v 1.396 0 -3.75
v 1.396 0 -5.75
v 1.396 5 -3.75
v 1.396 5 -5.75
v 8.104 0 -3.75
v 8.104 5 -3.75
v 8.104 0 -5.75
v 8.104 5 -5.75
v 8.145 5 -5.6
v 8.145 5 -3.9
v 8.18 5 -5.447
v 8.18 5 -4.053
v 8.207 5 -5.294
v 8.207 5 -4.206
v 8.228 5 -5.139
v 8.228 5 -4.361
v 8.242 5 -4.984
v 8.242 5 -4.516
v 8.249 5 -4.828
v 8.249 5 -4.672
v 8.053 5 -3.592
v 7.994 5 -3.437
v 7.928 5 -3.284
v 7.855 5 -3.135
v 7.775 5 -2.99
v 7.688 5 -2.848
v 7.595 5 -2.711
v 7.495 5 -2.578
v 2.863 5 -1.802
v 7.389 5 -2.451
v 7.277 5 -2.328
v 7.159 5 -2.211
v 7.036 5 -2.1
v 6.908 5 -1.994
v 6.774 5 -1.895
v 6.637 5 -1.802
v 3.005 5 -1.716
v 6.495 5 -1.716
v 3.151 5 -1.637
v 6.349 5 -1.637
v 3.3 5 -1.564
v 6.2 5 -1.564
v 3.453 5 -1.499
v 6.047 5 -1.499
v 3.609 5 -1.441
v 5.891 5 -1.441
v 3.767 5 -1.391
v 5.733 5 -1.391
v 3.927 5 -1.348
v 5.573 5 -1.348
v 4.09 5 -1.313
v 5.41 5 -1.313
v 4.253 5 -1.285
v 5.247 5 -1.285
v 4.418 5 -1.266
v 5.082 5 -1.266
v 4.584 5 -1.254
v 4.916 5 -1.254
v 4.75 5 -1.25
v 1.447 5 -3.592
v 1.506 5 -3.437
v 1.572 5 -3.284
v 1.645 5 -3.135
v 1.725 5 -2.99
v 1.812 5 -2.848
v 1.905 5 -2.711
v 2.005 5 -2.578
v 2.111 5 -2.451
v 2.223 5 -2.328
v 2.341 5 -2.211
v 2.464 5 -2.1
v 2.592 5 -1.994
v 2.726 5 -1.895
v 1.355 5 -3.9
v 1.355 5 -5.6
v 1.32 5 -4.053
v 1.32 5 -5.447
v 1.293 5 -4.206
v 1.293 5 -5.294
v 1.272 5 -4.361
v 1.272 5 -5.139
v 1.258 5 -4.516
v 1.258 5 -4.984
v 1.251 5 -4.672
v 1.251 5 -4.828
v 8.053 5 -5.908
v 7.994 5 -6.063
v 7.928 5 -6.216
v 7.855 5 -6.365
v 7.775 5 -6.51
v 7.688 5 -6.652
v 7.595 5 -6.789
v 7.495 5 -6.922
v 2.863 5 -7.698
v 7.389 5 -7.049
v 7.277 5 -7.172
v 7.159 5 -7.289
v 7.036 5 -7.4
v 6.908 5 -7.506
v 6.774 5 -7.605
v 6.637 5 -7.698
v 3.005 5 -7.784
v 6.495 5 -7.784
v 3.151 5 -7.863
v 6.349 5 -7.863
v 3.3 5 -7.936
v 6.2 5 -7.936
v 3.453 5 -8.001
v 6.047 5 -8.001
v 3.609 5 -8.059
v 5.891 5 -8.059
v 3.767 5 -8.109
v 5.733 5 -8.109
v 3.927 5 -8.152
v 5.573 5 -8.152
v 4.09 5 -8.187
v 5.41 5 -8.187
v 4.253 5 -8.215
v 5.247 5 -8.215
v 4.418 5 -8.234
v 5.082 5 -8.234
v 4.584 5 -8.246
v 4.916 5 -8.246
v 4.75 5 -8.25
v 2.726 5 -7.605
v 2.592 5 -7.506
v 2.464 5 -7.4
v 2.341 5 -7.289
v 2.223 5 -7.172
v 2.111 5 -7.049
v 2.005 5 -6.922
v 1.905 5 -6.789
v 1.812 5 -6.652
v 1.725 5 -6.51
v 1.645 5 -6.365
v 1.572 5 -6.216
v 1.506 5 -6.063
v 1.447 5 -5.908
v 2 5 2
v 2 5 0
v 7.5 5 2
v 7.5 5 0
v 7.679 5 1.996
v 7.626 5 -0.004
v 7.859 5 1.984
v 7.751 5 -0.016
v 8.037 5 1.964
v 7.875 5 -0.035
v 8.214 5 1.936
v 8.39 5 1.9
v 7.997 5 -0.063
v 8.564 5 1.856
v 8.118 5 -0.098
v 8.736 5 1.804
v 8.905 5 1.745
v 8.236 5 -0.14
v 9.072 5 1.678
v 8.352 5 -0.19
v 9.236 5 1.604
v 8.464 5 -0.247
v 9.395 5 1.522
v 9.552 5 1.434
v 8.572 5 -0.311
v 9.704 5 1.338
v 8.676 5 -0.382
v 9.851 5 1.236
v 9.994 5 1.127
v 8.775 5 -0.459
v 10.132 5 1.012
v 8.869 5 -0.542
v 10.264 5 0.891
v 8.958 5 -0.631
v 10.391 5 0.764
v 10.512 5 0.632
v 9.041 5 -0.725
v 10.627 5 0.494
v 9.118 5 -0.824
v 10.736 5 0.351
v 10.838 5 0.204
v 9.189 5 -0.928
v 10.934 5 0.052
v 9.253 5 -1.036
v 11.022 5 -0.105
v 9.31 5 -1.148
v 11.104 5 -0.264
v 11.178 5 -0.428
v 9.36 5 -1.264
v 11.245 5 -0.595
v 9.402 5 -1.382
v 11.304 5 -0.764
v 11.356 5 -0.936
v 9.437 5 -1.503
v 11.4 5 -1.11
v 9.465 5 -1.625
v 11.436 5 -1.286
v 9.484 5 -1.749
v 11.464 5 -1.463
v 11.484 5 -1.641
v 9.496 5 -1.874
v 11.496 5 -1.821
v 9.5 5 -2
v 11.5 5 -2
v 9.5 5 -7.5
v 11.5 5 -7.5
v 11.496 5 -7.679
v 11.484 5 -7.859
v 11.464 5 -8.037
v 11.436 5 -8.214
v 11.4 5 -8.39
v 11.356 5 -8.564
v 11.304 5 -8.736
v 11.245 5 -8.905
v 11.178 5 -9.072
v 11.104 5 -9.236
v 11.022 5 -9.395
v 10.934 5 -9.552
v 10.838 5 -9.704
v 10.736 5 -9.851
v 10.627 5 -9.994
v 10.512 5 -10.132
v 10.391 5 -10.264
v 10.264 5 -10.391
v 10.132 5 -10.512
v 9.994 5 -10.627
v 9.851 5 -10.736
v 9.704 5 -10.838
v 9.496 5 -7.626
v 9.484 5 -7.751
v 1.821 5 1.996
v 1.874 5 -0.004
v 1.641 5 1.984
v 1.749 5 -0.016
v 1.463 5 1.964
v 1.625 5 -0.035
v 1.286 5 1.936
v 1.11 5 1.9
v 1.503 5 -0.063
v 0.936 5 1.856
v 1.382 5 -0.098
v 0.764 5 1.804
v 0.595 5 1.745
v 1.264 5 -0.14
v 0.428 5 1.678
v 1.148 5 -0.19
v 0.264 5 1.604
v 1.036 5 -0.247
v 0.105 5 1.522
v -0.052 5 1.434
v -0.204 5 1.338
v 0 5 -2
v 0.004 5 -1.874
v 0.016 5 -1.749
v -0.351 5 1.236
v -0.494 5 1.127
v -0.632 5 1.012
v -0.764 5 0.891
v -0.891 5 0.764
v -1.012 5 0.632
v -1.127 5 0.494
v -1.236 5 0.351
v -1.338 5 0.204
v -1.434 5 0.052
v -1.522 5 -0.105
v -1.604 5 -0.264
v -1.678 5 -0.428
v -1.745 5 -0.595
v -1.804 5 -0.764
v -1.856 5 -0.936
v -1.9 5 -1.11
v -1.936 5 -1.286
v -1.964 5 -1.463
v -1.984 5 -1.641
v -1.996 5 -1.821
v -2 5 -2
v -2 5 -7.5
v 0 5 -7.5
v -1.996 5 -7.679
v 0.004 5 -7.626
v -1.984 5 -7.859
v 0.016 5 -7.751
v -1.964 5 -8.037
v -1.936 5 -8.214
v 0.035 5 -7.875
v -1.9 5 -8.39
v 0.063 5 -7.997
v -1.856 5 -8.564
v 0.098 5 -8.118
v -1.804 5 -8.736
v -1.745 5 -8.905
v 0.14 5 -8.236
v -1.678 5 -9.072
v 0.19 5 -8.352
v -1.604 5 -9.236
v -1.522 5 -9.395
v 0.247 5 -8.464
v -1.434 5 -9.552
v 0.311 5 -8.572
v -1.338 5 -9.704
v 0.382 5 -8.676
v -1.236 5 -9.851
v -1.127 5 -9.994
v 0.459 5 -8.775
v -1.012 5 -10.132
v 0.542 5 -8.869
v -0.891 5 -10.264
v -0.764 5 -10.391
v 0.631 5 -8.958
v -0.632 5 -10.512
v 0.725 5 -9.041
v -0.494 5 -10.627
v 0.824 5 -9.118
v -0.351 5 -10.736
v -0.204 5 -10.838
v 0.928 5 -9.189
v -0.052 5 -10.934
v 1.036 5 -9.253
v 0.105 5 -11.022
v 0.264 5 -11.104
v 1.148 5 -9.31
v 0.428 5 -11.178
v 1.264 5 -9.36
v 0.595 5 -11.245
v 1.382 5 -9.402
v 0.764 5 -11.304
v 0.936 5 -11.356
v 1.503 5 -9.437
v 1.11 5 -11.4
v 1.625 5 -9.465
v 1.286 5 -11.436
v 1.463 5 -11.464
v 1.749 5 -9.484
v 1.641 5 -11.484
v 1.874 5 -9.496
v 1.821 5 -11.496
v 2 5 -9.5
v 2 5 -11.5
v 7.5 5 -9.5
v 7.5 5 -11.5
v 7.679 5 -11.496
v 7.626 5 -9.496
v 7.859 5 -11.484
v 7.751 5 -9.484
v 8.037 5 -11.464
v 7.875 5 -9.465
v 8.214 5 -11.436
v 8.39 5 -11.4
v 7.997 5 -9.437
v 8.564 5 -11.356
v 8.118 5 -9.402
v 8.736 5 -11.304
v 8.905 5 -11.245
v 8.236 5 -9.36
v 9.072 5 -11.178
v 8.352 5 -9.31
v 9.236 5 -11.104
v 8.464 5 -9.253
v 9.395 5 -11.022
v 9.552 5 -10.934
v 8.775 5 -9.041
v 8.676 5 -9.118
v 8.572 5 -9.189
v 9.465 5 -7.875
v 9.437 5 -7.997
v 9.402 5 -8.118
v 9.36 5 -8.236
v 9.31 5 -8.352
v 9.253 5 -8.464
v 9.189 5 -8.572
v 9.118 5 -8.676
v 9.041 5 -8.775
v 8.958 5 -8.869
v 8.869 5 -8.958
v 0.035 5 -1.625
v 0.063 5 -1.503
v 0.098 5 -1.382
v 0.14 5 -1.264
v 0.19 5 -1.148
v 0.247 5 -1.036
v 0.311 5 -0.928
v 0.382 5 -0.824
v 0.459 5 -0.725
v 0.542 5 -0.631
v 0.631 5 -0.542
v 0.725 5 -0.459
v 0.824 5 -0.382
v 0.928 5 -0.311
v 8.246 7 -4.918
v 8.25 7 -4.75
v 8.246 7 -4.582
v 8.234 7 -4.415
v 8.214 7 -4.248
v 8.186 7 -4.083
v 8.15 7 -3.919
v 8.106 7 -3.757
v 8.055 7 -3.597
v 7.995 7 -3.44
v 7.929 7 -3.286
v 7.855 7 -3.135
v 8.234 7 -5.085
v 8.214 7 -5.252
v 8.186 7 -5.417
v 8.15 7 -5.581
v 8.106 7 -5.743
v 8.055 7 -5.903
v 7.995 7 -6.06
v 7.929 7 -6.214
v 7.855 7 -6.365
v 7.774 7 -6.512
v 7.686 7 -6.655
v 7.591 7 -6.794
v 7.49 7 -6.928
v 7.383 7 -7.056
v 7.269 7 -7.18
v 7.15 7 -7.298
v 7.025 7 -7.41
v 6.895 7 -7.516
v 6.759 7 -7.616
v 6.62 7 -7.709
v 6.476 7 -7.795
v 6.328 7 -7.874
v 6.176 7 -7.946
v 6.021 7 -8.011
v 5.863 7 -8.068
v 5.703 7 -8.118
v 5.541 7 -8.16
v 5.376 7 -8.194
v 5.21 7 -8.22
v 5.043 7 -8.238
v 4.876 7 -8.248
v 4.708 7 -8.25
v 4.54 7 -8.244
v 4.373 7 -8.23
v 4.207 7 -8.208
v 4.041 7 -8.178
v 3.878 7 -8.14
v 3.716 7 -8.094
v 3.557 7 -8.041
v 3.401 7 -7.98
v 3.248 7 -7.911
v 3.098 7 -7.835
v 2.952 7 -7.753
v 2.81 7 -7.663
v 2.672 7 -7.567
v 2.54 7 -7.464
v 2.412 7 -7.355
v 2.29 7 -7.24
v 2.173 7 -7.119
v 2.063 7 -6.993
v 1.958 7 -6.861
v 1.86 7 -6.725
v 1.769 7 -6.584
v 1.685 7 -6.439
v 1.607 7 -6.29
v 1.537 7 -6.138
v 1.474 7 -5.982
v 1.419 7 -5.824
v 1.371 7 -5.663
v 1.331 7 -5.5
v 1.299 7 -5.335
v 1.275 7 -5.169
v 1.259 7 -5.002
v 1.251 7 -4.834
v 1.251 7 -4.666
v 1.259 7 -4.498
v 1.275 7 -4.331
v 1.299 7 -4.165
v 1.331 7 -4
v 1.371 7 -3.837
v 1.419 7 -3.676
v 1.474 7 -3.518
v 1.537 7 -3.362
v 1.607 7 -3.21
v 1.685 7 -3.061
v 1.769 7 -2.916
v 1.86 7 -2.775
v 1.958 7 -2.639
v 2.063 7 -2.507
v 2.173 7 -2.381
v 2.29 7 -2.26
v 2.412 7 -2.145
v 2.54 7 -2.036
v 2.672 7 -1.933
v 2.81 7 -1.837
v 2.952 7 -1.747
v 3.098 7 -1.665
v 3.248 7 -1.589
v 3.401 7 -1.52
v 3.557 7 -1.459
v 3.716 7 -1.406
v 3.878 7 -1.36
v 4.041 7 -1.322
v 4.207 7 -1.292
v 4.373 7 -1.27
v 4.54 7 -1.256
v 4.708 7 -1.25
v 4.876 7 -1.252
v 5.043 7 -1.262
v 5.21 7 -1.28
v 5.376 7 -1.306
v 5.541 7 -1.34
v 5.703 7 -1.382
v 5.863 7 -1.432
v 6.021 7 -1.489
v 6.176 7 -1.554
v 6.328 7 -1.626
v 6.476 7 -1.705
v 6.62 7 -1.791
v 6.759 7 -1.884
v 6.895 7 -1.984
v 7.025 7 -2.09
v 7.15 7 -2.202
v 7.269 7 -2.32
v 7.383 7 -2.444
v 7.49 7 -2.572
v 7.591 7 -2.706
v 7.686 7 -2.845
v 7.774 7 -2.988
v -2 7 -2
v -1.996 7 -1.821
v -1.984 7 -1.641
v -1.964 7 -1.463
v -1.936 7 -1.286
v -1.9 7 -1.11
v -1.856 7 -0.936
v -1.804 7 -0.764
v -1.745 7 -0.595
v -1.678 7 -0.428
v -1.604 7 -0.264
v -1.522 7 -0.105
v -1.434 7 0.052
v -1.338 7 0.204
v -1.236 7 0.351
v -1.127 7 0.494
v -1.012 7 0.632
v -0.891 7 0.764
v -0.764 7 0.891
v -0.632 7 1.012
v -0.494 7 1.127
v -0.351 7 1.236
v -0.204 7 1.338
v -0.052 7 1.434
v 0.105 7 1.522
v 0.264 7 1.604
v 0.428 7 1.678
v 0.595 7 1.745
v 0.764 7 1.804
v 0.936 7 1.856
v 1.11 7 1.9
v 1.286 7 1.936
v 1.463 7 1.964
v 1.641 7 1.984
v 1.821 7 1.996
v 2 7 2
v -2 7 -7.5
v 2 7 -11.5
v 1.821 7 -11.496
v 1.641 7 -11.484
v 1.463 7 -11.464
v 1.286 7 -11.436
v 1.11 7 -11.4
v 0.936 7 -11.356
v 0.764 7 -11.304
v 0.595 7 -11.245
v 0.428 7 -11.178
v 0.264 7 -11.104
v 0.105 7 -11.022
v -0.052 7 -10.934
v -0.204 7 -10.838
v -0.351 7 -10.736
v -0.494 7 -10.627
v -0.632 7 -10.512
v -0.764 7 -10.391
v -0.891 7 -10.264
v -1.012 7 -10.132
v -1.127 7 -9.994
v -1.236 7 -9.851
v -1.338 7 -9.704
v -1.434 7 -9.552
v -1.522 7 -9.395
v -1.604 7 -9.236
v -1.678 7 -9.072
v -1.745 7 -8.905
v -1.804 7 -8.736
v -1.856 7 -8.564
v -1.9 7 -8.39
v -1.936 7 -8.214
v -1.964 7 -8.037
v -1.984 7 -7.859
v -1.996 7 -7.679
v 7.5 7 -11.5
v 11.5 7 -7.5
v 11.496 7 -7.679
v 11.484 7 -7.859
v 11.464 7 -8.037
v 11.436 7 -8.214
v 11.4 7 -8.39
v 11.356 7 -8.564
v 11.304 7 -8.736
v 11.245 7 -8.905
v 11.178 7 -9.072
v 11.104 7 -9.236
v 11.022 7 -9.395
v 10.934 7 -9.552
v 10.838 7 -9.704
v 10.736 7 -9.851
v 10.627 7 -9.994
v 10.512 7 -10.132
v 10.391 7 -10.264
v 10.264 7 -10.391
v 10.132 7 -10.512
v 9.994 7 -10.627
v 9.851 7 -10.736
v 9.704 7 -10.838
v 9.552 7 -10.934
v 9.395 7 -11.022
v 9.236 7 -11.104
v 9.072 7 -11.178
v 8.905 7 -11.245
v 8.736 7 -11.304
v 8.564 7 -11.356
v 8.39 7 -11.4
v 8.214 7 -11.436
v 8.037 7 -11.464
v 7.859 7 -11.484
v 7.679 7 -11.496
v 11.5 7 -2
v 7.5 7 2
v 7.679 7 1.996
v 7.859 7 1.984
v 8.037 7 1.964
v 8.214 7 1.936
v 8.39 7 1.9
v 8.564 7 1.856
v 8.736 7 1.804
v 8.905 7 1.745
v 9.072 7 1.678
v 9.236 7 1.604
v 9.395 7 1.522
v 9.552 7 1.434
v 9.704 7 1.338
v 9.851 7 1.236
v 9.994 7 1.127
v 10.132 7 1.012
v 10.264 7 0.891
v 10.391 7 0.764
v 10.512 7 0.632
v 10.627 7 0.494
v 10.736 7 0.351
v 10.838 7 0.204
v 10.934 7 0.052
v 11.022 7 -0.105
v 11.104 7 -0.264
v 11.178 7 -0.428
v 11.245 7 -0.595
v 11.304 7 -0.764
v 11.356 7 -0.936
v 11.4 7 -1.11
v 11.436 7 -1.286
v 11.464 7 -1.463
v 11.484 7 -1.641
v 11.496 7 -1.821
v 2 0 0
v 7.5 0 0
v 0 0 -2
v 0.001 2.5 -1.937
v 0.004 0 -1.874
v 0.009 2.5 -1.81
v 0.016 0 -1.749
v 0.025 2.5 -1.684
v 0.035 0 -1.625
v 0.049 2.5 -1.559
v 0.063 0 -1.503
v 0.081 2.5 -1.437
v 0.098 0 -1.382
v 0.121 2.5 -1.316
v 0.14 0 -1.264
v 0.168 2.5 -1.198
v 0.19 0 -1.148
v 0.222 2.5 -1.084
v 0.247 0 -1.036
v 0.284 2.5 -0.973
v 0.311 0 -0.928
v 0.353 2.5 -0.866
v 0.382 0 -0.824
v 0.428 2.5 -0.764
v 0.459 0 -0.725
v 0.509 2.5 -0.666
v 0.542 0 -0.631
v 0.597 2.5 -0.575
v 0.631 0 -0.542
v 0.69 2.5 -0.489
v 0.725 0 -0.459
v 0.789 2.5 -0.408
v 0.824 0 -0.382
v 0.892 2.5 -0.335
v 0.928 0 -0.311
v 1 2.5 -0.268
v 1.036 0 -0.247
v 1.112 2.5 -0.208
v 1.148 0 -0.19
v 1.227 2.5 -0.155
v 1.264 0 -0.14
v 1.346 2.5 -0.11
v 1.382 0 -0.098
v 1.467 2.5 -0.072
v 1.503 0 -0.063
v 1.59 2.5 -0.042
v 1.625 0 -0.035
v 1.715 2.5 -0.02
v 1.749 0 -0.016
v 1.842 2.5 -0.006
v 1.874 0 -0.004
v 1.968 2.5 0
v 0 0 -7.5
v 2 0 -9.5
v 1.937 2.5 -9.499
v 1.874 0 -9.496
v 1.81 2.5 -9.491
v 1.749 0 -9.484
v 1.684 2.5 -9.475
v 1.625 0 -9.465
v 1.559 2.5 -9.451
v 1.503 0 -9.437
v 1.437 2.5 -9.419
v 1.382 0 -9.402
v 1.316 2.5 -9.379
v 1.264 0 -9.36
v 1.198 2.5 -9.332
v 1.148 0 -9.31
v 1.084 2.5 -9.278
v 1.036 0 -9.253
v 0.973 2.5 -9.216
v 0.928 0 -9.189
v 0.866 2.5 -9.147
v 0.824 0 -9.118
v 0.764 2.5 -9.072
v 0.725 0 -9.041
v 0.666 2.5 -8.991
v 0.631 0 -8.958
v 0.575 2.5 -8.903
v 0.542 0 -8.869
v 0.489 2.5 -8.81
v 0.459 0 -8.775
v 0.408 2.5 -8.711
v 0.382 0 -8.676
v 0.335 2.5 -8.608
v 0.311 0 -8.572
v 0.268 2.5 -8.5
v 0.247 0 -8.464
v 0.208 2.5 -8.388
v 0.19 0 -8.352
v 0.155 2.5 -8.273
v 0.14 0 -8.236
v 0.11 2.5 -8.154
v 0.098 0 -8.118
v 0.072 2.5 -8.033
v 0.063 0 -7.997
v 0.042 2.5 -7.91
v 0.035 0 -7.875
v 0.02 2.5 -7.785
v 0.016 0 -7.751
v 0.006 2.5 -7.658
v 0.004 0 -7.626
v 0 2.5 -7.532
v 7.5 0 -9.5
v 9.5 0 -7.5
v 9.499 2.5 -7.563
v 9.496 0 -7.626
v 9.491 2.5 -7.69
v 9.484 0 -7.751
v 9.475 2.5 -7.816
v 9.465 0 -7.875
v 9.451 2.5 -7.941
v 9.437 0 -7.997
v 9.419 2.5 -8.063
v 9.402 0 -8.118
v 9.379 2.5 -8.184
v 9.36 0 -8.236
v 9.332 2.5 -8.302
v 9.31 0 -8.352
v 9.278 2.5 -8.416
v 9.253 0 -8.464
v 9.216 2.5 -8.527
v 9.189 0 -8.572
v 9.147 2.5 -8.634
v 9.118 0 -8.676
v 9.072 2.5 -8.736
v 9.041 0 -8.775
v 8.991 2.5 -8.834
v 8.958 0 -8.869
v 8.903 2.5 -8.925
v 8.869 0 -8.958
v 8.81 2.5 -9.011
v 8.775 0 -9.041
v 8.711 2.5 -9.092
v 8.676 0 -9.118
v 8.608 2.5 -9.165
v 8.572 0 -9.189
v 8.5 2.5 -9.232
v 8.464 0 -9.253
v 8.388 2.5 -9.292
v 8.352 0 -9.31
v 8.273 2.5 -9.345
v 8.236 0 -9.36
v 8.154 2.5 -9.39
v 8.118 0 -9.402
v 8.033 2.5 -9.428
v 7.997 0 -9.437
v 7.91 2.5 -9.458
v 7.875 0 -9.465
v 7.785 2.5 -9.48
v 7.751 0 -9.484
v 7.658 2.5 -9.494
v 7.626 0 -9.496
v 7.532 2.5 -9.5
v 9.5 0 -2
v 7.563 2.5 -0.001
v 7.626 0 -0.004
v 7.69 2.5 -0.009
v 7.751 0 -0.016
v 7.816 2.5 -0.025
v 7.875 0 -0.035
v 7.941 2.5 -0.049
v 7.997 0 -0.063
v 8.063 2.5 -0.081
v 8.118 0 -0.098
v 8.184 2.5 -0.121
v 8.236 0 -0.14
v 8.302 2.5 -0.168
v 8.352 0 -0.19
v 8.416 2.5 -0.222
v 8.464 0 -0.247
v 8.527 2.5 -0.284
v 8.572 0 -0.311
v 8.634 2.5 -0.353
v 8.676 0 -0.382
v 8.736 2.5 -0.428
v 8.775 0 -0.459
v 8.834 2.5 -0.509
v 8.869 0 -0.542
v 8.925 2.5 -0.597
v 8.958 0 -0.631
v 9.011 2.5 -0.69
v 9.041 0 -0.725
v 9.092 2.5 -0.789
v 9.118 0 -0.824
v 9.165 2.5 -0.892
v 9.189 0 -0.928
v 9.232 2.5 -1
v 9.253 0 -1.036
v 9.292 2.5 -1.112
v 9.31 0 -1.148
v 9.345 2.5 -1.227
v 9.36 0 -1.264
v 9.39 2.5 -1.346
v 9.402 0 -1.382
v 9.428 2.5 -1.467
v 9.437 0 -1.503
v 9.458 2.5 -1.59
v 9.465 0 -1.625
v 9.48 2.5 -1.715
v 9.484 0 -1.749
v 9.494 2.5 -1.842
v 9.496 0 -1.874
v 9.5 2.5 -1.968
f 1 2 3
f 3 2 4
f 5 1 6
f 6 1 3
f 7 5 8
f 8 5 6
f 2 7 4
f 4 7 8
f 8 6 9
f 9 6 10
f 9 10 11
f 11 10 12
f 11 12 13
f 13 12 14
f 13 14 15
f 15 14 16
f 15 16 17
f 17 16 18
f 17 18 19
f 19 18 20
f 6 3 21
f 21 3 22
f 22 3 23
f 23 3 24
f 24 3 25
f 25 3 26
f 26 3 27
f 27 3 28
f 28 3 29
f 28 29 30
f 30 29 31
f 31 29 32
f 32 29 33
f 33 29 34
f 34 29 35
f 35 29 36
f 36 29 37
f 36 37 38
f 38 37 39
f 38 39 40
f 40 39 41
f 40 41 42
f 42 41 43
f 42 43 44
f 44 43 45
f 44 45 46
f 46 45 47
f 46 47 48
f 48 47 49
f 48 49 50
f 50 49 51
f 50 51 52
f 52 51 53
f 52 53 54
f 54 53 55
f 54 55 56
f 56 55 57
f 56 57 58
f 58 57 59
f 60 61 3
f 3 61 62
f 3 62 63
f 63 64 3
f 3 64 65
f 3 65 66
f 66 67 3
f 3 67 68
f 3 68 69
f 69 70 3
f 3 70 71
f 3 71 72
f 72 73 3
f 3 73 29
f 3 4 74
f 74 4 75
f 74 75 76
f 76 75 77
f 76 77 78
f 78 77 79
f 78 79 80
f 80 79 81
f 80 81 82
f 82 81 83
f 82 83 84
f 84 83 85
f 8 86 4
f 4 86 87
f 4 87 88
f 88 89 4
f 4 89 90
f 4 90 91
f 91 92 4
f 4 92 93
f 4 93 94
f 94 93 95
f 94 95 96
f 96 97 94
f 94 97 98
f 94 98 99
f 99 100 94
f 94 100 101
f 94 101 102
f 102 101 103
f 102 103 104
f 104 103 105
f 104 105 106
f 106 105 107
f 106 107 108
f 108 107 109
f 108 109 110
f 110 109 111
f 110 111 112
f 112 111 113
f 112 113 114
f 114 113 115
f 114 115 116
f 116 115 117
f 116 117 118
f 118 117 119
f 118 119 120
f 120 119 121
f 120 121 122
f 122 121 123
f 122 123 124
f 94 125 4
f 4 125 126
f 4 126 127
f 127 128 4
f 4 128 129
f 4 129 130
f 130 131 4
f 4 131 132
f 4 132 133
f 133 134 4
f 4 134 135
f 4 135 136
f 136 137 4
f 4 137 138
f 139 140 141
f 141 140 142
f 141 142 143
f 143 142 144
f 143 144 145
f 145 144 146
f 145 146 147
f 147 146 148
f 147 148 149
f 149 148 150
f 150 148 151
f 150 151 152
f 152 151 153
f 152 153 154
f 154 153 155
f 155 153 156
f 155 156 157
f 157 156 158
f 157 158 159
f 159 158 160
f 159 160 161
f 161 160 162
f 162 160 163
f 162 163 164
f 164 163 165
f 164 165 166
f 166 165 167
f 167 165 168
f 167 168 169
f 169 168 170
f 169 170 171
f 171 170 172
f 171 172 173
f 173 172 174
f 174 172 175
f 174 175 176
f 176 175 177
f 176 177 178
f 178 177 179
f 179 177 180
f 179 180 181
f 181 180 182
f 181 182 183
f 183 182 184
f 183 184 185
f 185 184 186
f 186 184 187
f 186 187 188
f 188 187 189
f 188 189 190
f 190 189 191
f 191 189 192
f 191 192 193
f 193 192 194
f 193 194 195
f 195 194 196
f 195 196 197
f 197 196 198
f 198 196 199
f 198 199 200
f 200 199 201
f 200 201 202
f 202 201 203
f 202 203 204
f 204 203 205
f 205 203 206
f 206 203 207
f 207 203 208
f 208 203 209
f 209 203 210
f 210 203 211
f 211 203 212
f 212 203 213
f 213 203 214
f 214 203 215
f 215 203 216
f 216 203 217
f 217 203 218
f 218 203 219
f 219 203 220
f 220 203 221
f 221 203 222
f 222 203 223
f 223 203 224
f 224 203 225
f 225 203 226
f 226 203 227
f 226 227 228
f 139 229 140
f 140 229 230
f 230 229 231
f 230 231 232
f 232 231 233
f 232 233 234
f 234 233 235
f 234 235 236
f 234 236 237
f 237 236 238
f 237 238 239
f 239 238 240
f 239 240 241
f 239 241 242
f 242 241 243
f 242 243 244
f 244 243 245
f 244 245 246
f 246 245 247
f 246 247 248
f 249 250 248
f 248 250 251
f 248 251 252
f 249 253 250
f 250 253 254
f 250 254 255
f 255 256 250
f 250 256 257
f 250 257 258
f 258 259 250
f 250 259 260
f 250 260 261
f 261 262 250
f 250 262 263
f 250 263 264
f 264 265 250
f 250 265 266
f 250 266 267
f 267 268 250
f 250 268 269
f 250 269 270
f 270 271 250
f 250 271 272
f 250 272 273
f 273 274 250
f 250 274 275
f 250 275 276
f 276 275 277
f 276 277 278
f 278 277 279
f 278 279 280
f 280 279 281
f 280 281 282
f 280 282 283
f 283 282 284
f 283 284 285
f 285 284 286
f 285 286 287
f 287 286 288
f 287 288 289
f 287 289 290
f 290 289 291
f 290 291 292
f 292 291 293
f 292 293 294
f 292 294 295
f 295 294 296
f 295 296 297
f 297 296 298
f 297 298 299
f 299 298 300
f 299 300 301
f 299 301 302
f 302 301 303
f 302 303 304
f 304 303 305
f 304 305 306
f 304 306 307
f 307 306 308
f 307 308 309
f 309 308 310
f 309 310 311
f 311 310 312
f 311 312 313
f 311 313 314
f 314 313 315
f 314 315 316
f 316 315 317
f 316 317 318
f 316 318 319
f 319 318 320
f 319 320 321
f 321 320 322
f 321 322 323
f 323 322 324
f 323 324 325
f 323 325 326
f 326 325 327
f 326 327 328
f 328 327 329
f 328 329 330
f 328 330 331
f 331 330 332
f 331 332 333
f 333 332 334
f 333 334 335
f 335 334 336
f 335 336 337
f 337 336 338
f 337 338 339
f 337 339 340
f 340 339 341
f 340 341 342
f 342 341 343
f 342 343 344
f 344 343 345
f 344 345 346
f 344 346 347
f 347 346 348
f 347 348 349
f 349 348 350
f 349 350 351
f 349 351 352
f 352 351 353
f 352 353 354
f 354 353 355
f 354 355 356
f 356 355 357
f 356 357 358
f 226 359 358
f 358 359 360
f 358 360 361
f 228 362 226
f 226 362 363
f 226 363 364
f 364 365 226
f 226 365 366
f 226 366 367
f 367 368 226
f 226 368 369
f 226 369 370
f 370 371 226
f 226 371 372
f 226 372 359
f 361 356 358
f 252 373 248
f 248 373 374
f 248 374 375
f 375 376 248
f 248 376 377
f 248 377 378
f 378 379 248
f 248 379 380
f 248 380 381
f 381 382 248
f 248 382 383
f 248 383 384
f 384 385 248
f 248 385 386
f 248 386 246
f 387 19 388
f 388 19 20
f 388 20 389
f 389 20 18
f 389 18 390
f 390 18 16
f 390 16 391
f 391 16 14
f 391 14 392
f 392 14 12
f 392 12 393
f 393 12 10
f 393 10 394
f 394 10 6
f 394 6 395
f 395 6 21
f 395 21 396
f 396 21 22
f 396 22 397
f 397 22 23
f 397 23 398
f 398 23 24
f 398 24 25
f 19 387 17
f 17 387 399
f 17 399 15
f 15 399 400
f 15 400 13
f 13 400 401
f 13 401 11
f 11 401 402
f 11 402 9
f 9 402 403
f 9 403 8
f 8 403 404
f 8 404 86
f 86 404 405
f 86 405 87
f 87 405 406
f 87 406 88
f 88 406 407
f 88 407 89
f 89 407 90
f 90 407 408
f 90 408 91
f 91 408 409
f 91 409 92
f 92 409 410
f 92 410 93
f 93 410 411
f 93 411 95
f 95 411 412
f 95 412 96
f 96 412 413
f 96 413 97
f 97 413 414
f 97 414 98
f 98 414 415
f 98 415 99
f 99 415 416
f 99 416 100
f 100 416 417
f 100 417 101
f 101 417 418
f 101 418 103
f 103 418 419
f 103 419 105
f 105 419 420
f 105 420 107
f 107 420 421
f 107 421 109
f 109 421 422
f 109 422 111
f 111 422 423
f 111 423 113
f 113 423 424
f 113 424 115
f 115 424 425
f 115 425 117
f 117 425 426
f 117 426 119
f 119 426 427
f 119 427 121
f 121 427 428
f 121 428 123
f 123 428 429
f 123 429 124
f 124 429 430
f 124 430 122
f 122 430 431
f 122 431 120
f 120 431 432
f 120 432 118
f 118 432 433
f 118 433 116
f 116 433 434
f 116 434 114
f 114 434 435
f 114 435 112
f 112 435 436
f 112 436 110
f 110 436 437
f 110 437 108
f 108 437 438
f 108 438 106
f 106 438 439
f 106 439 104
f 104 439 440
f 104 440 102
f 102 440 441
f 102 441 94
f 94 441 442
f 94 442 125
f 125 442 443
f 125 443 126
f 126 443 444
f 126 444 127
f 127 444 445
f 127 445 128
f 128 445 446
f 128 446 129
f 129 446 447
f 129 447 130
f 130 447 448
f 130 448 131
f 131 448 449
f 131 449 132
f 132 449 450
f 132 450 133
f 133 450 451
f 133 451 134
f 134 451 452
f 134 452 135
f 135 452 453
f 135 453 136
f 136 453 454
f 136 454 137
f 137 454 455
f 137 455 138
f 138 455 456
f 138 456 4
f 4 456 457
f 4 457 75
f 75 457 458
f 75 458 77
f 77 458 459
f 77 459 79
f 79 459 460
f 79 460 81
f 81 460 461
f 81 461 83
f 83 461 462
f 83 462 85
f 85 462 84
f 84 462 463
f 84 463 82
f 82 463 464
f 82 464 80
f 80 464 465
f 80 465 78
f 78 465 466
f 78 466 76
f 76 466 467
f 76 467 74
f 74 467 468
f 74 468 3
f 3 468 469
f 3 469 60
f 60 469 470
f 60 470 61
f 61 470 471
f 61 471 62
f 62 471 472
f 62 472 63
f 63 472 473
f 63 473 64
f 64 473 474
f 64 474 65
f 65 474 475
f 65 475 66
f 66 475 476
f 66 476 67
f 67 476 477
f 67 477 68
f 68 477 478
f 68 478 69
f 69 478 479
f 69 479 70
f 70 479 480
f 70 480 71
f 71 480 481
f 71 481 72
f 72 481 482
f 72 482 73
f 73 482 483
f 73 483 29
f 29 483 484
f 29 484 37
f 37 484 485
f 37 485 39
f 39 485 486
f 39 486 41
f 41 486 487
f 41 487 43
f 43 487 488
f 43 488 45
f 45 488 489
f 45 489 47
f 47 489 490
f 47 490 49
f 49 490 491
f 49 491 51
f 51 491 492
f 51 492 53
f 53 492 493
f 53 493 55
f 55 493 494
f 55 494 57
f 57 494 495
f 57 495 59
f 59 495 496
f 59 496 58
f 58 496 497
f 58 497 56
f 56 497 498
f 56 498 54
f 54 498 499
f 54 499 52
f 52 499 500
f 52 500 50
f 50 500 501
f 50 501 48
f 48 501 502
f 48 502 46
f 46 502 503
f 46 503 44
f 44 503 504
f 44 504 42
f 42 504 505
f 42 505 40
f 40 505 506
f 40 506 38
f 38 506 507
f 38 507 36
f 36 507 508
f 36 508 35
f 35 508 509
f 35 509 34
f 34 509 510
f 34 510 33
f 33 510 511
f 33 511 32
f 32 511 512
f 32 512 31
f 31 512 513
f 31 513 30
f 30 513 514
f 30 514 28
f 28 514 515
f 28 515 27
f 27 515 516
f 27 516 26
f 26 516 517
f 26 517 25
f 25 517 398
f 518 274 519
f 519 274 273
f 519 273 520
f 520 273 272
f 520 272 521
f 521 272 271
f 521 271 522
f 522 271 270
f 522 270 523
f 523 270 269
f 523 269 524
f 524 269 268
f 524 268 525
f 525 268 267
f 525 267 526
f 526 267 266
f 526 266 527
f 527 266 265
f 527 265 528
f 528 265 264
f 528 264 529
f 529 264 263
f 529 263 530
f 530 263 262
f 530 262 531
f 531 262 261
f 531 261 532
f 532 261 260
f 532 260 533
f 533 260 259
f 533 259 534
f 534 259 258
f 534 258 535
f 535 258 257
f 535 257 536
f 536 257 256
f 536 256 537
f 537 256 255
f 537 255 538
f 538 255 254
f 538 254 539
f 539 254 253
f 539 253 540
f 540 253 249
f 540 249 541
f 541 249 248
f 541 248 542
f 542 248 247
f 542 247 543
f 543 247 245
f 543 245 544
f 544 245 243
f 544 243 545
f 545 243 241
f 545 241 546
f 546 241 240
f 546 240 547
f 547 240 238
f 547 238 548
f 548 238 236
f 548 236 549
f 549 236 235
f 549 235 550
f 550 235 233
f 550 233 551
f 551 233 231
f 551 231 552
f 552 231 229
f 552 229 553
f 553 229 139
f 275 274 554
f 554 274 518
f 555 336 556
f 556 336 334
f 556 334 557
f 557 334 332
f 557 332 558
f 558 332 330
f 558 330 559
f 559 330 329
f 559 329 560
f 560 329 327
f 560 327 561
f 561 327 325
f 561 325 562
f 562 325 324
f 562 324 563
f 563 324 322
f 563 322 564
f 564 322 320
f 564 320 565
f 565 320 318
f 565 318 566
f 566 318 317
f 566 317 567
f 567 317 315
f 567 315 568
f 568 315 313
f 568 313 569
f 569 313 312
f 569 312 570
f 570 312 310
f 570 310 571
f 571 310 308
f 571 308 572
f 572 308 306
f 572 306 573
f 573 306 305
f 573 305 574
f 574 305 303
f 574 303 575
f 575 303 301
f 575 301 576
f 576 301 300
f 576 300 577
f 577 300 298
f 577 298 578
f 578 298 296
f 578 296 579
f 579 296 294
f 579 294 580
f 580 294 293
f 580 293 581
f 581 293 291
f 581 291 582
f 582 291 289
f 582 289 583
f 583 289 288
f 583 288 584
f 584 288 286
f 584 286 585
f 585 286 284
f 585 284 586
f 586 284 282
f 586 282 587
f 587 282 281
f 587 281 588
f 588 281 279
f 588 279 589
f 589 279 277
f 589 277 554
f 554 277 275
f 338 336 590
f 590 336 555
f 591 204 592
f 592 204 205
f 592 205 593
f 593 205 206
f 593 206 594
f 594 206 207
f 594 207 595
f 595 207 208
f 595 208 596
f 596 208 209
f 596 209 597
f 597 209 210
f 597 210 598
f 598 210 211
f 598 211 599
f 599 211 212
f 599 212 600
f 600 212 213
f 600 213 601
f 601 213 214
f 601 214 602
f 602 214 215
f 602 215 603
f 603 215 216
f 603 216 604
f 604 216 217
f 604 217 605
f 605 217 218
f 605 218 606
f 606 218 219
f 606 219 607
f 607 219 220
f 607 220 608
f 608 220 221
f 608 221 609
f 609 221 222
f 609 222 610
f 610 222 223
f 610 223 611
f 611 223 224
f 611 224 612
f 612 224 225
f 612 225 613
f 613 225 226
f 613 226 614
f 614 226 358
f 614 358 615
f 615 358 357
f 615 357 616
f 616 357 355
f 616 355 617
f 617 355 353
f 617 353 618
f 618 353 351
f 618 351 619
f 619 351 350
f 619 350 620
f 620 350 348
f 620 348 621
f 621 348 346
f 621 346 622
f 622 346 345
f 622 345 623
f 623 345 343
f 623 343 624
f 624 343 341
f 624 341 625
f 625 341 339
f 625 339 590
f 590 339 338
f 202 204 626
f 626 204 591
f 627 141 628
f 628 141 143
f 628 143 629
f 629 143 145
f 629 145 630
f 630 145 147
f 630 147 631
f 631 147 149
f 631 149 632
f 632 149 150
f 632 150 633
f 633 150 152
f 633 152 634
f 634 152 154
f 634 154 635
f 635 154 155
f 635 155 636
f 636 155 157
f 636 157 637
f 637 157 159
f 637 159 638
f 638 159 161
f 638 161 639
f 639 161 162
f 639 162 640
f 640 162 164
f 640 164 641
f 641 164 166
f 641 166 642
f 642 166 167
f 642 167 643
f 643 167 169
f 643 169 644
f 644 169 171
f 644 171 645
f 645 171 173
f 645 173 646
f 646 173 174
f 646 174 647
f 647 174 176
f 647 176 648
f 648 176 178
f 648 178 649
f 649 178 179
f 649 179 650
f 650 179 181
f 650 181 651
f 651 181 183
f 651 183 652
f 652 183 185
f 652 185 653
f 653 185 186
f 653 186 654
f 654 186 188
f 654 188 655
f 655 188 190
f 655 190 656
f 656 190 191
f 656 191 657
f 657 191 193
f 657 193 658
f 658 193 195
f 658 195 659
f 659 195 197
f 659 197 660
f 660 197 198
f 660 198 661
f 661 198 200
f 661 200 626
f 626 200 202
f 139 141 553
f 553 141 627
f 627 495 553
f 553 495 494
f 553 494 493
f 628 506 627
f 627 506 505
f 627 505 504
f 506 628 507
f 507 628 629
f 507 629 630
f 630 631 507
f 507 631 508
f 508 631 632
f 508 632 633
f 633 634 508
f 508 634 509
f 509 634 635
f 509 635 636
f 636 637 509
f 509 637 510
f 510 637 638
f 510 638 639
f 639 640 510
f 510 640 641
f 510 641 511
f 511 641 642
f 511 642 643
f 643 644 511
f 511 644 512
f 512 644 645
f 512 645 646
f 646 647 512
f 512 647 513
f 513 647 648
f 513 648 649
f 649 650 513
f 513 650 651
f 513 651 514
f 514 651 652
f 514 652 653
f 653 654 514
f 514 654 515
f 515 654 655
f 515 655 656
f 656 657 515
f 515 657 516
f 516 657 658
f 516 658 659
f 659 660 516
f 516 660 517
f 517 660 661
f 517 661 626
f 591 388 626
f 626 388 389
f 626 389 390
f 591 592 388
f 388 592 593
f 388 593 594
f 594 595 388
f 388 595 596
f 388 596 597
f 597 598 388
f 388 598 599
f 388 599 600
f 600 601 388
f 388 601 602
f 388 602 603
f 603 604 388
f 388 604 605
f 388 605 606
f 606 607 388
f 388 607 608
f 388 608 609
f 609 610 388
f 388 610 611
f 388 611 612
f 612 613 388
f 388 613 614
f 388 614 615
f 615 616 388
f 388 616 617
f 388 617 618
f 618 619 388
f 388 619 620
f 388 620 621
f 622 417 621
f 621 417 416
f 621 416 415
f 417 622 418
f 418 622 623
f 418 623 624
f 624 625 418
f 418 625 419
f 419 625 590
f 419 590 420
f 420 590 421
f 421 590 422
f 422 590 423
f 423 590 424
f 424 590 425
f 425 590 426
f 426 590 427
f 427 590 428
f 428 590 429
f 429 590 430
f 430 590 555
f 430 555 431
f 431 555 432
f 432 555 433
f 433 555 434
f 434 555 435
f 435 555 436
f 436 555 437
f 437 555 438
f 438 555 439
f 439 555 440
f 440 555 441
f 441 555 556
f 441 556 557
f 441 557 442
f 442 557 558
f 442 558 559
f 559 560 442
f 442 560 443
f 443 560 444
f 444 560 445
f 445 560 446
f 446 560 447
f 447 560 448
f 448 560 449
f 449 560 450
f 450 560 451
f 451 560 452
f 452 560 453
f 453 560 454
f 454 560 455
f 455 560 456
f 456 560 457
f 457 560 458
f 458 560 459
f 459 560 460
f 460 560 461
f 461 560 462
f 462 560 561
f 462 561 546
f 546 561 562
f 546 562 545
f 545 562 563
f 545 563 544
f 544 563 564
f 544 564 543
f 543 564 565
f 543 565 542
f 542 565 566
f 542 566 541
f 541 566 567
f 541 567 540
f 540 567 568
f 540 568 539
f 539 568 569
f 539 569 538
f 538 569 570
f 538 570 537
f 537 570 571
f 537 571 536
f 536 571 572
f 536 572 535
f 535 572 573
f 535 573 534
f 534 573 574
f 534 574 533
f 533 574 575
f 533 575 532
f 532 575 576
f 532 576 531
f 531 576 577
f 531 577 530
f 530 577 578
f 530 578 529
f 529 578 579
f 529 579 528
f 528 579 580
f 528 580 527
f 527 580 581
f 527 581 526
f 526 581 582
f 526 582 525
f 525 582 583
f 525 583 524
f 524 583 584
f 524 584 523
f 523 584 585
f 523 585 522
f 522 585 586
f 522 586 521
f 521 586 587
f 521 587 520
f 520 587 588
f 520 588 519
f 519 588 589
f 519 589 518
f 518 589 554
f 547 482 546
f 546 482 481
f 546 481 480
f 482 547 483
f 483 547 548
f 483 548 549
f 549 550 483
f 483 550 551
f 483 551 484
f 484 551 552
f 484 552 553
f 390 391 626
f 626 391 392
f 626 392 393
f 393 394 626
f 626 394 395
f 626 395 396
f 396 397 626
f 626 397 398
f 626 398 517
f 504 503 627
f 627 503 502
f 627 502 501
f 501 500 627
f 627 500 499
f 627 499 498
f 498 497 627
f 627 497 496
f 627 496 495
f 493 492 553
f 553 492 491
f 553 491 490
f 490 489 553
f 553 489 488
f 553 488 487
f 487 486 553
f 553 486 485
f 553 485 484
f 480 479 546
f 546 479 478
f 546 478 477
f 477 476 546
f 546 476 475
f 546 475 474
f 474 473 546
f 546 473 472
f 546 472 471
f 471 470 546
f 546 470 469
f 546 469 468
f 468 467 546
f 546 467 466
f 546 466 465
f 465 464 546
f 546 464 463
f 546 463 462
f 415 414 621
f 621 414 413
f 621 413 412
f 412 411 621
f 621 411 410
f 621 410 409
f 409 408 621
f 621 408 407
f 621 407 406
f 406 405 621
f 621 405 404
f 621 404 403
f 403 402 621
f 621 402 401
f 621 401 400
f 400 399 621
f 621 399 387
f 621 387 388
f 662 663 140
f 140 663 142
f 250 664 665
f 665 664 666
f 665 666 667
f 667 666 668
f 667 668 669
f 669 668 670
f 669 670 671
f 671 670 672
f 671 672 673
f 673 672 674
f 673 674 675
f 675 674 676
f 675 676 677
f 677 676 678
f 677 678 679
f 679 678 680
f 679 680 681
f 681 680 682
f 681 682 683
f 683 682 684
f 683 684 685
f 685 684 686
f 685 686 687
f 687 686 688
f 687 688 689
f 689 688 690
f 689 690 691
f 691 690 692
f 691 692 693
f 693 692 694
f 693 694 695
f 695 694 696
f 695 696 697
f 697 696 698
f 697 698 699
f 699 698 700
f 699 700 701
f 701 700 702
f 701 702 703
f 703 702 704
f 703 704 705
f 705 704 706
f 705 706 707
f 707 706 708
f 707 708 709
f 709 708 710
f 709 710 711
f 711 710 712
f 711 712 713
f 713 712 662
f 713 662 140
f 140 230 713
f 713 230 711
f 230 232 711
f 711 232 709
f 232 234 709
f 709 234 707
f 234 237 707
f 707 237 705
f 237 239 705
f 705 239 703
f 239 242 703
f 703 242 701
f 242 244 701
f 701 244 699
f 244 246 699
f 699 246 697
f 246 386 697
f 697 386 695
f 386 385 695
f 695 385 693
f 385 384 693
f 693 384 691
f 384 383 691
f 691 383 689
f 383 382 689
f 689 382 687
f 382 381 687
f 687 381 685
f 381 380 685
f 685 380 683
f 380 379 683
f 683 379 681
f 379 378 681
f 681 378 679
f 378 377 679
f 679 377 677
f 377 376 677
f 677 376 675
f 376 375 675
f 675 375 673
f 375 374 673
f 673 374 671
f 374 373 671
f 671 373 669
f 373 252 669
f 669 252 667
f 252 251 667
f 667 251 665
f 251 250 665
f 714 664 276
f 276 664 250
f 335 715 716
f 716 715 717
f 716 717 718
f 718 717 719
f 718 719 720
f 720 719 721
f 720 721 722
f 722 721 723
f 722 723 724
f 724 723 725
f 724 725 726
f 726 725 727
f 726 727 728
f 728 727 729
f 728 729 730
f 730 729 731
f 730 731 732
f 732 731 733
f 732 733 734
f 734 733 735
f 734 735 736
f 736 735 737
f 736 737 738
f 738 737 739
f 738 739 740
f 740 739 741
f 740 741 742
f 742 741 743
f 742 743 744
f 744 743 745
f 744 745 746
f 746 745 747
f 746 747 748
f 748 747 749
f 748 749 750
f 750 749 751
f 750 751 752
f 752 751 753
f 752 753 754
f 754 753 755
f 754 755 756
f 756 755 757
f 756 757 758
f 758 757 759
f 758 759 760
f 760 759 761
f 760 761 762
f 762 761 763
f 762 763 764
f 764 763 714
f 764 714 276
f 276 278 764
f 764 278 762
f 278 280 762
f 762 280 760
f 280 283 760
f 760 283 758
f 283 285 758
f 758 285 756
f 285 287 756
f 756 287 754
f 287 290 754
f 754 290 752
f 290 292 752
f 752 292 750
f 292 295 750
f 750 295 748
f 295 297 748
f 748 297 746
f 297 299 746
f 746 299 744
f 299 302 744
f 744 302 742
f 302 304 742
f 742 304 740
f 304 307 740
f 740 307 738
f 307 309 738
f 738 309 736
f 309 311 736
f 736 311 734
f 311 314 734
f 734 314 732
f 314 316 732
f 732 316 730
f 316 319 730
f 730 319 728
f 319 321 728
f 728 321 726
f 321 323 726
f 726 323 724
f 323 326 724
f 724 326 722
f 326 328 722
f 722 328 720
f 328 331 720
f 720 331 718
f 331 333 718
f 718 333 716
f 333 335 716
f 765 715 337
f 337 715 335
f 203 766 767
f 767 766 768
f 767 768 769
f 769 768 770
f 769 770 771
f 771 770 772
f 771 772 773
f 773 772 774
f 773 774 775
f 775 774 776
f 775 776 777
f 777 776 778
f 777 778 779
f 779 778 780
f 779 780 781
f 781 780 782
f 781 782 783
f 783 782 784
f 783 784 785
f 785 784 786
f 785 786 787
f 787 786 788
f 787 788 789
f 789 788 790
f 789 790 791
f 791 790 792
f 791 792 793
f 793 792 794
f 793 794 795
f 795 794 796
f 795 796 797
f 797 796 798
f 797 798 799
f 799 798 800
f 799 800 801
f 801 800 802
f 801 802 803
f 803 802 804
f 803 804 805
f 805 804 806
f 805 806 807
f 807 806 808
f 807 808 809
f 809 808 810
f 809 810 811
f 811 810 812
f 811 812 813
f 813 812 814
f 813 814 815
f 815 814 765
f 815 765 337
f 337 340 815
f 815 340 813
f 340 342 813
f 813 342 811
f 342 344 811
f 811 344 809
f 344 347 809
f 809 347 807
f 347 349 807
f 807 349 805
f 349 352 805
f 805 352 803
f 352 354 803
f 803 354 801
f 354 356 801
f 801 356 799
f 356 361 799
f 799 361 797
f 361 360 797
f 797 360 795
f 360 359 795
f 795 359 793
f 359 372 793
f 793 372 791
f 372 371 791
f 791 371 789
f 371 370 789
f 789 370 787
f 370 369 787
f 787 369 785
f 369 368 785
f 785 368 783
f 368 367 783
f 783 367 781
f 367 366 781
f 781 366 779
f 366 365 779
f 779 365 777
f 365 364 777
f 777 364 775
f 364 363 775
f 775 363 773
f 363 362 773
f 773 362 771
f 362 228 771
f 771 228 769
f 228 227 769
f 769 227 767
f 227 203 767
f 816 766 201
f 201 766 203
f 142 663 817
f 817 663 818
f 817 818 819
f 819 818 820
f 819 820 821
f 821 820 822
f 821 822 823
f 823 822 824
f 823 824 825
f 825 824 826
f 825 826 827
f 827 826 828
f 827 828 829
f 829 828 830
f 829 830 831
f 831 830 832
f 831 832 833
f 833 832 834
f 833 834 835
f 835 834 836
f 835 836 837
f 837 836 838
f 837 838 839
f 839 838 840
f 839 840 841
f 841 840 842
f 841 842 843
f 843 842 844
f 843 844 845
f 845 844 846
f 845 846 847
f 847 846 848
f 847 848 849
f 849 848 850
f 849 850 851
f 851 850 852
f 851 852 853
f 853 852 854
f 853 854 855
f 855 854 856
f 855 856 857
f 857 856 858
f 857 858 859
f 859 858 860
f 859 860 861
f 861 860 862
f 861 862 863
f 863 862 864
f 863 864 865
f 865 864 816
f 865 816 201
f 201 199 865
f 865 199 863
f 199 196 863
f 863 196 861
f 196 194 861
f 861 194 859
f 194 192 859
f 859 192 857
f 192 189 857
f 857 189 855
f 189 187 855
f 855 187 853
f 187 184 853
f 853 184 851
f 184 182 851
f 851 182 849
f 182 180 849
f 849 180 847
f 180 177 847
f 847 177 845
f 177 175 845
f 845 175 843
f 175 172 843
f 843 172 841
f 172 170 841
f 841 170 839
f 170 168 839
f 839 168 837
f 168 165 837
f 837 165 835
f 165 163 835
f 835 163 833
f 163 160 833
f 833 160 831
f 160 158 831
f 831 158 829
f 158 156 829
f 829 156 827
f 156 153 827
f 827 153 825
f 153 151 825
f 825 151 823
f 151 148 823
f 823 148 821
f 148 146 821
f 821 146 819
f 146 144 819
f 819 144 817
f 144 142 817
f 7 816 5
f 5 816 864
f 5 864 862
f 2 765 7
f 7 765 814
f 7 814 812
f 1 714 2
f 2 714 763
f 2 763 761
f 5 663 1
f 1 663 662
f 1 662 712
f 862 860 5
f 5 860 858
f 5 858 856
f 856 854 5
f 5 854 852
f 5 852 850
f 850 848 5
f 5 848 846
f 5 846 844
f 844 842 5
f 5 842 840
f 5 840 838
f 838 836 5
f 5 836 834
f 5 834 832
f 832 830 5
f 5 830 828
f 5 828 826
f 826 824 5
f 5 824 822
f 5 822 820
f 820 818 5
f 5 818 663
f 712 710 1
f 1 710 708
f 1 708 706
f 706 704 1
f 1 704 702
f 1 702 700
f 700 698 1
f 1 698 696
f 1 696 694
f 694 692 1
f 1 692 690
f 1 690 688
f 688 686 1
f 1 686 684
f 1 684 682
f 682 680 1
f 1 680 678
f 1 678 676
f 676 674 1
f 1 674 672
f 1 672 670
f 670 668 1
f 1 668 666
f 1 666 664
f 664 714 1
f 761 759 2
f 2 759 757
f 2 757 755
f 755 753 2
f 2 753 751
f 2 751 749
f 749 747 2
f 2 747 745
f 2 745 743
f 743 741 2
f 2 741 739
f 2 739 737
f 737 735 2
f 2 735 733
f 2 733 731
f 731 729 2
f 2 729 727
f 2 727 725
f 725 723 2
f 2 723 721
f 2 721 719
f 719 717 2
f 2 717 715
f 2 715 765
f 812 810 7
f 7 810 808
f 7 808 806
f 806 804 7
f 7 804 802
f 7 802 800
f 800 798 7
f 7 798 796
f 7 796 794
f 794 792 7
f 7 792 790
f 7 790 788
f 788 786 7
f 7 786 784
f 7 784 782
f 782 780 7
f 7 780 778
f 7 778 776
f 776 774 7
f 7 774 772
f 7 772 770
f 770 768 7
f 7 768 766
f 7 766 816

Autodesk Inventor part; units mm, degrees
ref_plane "YZ Plane" through (0, 0, 0) normal (1, 0, 0) x (0, 1, 0)
ref_plane "XZ Plane" through (0, 0, 0) normal (0, 1, 0) x (-1, 0, 0)
ref_plane "XY Plane" through (0, 0, 0) normal (0, 0, 1) x (1, 0, 0)
sketch "Skizze1" plane through (0, 0, 0) normal (0, 1, 0) x (-1, 0, 0)
  line L0 (-2, 0) -> (-7.5, 0)
  line L1 (-9.5, -2) -> (-9.5, -7.5)
  line L2 (-7.5, -9.5) -> (-2, -9.5)
  line L3 (0, -7.5) -> (0, -2)
  arc A0 (-2, -9.5) -> (0, -7.5) centre (-2, -7.5) ccw
  arc A1 (-9.5, -7.5) -> (-7.5, -9.5) centre (-7.5, -7.5) ccw
  arc A2 (-7.5, 0) -> (-9.5, -2) centre (-7.5, -2) ccw
  arc A3 (0, -2) -> (-2, 0) centre (-2, -2) ccw
  point P0 (0, 0)
  point P1 (-9.5, -9.5)
  point P2 (-9.5, 0)
  point P3 (0, -9.5)
  dimension "d0" = 9.5
  dimension "d1" = 9.5
  dimension "d2" = 2
extrude "Extrusion1" add sketch "Skizze1" along normal blind 5
sketch "Skizze2" plane through (0, 5, 0) normal (0, 1, 0) x (1, 0, 0)
  arc A0 (7.5, 0) -> (9.5, 2) centre (7.5, 2) ccw projected
  line L0 (9.5, 2) -> (9.5, 7.5) projected
  arc A1 (9.5, 7.5) -> (7.5, 9.5) centre (7.5, 7.5) ccw projected
  line L1 (7.5, 9.5) -> (2, 9.5) projected
  arc A2 (2, 9.5) -> (0, 7.5) centre (2, 7.5) ccw projected
  line L2 (0, 7.5) -> (0, 2) projected
  arc A3 (0, 2) -> (2, 0) centre (2, 2) ccw projected
  line L3 (2, 0) -> (7.5, 0) projected
  circle A4 centre (4.75, 4.75) radius 3.5
  line L4 (9.5, 2) -> (9.5, 7.5) projected
  arc A5 (7.5, -2) -> (11.5, 2) centre (7.5, 2) ccw
  line L5 (7.5, -2) -> (2, -2)
  arc A6 (-2, 2) -> (2, -2) centre (2, 2) ccw
  line L6 (-2, 2) -> (-2, 7.5)
  arc A7 (2, 11.5) -> (-2, 7.5) centre (2, 7.5) ccw
  line L7 (2, 11.5) -> (7.5, 11.5)
  arc A8 (11.5, 7.5) -> (7.5, 11.5) centre (7.5, 7.5) ccw
  line L8 (11.5, 7.5) -> (11.5, 2)
  point P0 (0, 0)
  point P1 (9.5, 4.75)
  point P2 (4.75, 9.5)
  dimension "d5" = 7
  dimension "d6" = 2
extrude "Extrusion2" add sketch "Skizze2" along normal blind 2 contours L3 A3 L2 A2 L1 A1 L0 A0 | L5 A6 L6 A7 L7 A8 L8 A5
sketch "Skizze3" plane through (4.75, 5, -4.75) normal (0, 1, 0) x (1, 0, 0)
  circle A0 centre (0, 0) radius 3.5 projected
  line L0 (-3.3541, 1) -> (3.3541, 1)
  line L1 (3.3541, 1) -> (3.3541, -1)
  line L2 (3.3541, -1) -> (-3.3541, -1)
  line L3 (-3.3541, -1) -> (-3.3541, 1)
  circle A1 centre (0, 0) radius 3.5 projected
  point P0 (-4.75, -4.75)
  dimension "d9" = 2
extrude "Extrusion3" cut sketch "Skizze3" against normal through all contours L1 L2 L3 L0
properties part number "led_stand"
